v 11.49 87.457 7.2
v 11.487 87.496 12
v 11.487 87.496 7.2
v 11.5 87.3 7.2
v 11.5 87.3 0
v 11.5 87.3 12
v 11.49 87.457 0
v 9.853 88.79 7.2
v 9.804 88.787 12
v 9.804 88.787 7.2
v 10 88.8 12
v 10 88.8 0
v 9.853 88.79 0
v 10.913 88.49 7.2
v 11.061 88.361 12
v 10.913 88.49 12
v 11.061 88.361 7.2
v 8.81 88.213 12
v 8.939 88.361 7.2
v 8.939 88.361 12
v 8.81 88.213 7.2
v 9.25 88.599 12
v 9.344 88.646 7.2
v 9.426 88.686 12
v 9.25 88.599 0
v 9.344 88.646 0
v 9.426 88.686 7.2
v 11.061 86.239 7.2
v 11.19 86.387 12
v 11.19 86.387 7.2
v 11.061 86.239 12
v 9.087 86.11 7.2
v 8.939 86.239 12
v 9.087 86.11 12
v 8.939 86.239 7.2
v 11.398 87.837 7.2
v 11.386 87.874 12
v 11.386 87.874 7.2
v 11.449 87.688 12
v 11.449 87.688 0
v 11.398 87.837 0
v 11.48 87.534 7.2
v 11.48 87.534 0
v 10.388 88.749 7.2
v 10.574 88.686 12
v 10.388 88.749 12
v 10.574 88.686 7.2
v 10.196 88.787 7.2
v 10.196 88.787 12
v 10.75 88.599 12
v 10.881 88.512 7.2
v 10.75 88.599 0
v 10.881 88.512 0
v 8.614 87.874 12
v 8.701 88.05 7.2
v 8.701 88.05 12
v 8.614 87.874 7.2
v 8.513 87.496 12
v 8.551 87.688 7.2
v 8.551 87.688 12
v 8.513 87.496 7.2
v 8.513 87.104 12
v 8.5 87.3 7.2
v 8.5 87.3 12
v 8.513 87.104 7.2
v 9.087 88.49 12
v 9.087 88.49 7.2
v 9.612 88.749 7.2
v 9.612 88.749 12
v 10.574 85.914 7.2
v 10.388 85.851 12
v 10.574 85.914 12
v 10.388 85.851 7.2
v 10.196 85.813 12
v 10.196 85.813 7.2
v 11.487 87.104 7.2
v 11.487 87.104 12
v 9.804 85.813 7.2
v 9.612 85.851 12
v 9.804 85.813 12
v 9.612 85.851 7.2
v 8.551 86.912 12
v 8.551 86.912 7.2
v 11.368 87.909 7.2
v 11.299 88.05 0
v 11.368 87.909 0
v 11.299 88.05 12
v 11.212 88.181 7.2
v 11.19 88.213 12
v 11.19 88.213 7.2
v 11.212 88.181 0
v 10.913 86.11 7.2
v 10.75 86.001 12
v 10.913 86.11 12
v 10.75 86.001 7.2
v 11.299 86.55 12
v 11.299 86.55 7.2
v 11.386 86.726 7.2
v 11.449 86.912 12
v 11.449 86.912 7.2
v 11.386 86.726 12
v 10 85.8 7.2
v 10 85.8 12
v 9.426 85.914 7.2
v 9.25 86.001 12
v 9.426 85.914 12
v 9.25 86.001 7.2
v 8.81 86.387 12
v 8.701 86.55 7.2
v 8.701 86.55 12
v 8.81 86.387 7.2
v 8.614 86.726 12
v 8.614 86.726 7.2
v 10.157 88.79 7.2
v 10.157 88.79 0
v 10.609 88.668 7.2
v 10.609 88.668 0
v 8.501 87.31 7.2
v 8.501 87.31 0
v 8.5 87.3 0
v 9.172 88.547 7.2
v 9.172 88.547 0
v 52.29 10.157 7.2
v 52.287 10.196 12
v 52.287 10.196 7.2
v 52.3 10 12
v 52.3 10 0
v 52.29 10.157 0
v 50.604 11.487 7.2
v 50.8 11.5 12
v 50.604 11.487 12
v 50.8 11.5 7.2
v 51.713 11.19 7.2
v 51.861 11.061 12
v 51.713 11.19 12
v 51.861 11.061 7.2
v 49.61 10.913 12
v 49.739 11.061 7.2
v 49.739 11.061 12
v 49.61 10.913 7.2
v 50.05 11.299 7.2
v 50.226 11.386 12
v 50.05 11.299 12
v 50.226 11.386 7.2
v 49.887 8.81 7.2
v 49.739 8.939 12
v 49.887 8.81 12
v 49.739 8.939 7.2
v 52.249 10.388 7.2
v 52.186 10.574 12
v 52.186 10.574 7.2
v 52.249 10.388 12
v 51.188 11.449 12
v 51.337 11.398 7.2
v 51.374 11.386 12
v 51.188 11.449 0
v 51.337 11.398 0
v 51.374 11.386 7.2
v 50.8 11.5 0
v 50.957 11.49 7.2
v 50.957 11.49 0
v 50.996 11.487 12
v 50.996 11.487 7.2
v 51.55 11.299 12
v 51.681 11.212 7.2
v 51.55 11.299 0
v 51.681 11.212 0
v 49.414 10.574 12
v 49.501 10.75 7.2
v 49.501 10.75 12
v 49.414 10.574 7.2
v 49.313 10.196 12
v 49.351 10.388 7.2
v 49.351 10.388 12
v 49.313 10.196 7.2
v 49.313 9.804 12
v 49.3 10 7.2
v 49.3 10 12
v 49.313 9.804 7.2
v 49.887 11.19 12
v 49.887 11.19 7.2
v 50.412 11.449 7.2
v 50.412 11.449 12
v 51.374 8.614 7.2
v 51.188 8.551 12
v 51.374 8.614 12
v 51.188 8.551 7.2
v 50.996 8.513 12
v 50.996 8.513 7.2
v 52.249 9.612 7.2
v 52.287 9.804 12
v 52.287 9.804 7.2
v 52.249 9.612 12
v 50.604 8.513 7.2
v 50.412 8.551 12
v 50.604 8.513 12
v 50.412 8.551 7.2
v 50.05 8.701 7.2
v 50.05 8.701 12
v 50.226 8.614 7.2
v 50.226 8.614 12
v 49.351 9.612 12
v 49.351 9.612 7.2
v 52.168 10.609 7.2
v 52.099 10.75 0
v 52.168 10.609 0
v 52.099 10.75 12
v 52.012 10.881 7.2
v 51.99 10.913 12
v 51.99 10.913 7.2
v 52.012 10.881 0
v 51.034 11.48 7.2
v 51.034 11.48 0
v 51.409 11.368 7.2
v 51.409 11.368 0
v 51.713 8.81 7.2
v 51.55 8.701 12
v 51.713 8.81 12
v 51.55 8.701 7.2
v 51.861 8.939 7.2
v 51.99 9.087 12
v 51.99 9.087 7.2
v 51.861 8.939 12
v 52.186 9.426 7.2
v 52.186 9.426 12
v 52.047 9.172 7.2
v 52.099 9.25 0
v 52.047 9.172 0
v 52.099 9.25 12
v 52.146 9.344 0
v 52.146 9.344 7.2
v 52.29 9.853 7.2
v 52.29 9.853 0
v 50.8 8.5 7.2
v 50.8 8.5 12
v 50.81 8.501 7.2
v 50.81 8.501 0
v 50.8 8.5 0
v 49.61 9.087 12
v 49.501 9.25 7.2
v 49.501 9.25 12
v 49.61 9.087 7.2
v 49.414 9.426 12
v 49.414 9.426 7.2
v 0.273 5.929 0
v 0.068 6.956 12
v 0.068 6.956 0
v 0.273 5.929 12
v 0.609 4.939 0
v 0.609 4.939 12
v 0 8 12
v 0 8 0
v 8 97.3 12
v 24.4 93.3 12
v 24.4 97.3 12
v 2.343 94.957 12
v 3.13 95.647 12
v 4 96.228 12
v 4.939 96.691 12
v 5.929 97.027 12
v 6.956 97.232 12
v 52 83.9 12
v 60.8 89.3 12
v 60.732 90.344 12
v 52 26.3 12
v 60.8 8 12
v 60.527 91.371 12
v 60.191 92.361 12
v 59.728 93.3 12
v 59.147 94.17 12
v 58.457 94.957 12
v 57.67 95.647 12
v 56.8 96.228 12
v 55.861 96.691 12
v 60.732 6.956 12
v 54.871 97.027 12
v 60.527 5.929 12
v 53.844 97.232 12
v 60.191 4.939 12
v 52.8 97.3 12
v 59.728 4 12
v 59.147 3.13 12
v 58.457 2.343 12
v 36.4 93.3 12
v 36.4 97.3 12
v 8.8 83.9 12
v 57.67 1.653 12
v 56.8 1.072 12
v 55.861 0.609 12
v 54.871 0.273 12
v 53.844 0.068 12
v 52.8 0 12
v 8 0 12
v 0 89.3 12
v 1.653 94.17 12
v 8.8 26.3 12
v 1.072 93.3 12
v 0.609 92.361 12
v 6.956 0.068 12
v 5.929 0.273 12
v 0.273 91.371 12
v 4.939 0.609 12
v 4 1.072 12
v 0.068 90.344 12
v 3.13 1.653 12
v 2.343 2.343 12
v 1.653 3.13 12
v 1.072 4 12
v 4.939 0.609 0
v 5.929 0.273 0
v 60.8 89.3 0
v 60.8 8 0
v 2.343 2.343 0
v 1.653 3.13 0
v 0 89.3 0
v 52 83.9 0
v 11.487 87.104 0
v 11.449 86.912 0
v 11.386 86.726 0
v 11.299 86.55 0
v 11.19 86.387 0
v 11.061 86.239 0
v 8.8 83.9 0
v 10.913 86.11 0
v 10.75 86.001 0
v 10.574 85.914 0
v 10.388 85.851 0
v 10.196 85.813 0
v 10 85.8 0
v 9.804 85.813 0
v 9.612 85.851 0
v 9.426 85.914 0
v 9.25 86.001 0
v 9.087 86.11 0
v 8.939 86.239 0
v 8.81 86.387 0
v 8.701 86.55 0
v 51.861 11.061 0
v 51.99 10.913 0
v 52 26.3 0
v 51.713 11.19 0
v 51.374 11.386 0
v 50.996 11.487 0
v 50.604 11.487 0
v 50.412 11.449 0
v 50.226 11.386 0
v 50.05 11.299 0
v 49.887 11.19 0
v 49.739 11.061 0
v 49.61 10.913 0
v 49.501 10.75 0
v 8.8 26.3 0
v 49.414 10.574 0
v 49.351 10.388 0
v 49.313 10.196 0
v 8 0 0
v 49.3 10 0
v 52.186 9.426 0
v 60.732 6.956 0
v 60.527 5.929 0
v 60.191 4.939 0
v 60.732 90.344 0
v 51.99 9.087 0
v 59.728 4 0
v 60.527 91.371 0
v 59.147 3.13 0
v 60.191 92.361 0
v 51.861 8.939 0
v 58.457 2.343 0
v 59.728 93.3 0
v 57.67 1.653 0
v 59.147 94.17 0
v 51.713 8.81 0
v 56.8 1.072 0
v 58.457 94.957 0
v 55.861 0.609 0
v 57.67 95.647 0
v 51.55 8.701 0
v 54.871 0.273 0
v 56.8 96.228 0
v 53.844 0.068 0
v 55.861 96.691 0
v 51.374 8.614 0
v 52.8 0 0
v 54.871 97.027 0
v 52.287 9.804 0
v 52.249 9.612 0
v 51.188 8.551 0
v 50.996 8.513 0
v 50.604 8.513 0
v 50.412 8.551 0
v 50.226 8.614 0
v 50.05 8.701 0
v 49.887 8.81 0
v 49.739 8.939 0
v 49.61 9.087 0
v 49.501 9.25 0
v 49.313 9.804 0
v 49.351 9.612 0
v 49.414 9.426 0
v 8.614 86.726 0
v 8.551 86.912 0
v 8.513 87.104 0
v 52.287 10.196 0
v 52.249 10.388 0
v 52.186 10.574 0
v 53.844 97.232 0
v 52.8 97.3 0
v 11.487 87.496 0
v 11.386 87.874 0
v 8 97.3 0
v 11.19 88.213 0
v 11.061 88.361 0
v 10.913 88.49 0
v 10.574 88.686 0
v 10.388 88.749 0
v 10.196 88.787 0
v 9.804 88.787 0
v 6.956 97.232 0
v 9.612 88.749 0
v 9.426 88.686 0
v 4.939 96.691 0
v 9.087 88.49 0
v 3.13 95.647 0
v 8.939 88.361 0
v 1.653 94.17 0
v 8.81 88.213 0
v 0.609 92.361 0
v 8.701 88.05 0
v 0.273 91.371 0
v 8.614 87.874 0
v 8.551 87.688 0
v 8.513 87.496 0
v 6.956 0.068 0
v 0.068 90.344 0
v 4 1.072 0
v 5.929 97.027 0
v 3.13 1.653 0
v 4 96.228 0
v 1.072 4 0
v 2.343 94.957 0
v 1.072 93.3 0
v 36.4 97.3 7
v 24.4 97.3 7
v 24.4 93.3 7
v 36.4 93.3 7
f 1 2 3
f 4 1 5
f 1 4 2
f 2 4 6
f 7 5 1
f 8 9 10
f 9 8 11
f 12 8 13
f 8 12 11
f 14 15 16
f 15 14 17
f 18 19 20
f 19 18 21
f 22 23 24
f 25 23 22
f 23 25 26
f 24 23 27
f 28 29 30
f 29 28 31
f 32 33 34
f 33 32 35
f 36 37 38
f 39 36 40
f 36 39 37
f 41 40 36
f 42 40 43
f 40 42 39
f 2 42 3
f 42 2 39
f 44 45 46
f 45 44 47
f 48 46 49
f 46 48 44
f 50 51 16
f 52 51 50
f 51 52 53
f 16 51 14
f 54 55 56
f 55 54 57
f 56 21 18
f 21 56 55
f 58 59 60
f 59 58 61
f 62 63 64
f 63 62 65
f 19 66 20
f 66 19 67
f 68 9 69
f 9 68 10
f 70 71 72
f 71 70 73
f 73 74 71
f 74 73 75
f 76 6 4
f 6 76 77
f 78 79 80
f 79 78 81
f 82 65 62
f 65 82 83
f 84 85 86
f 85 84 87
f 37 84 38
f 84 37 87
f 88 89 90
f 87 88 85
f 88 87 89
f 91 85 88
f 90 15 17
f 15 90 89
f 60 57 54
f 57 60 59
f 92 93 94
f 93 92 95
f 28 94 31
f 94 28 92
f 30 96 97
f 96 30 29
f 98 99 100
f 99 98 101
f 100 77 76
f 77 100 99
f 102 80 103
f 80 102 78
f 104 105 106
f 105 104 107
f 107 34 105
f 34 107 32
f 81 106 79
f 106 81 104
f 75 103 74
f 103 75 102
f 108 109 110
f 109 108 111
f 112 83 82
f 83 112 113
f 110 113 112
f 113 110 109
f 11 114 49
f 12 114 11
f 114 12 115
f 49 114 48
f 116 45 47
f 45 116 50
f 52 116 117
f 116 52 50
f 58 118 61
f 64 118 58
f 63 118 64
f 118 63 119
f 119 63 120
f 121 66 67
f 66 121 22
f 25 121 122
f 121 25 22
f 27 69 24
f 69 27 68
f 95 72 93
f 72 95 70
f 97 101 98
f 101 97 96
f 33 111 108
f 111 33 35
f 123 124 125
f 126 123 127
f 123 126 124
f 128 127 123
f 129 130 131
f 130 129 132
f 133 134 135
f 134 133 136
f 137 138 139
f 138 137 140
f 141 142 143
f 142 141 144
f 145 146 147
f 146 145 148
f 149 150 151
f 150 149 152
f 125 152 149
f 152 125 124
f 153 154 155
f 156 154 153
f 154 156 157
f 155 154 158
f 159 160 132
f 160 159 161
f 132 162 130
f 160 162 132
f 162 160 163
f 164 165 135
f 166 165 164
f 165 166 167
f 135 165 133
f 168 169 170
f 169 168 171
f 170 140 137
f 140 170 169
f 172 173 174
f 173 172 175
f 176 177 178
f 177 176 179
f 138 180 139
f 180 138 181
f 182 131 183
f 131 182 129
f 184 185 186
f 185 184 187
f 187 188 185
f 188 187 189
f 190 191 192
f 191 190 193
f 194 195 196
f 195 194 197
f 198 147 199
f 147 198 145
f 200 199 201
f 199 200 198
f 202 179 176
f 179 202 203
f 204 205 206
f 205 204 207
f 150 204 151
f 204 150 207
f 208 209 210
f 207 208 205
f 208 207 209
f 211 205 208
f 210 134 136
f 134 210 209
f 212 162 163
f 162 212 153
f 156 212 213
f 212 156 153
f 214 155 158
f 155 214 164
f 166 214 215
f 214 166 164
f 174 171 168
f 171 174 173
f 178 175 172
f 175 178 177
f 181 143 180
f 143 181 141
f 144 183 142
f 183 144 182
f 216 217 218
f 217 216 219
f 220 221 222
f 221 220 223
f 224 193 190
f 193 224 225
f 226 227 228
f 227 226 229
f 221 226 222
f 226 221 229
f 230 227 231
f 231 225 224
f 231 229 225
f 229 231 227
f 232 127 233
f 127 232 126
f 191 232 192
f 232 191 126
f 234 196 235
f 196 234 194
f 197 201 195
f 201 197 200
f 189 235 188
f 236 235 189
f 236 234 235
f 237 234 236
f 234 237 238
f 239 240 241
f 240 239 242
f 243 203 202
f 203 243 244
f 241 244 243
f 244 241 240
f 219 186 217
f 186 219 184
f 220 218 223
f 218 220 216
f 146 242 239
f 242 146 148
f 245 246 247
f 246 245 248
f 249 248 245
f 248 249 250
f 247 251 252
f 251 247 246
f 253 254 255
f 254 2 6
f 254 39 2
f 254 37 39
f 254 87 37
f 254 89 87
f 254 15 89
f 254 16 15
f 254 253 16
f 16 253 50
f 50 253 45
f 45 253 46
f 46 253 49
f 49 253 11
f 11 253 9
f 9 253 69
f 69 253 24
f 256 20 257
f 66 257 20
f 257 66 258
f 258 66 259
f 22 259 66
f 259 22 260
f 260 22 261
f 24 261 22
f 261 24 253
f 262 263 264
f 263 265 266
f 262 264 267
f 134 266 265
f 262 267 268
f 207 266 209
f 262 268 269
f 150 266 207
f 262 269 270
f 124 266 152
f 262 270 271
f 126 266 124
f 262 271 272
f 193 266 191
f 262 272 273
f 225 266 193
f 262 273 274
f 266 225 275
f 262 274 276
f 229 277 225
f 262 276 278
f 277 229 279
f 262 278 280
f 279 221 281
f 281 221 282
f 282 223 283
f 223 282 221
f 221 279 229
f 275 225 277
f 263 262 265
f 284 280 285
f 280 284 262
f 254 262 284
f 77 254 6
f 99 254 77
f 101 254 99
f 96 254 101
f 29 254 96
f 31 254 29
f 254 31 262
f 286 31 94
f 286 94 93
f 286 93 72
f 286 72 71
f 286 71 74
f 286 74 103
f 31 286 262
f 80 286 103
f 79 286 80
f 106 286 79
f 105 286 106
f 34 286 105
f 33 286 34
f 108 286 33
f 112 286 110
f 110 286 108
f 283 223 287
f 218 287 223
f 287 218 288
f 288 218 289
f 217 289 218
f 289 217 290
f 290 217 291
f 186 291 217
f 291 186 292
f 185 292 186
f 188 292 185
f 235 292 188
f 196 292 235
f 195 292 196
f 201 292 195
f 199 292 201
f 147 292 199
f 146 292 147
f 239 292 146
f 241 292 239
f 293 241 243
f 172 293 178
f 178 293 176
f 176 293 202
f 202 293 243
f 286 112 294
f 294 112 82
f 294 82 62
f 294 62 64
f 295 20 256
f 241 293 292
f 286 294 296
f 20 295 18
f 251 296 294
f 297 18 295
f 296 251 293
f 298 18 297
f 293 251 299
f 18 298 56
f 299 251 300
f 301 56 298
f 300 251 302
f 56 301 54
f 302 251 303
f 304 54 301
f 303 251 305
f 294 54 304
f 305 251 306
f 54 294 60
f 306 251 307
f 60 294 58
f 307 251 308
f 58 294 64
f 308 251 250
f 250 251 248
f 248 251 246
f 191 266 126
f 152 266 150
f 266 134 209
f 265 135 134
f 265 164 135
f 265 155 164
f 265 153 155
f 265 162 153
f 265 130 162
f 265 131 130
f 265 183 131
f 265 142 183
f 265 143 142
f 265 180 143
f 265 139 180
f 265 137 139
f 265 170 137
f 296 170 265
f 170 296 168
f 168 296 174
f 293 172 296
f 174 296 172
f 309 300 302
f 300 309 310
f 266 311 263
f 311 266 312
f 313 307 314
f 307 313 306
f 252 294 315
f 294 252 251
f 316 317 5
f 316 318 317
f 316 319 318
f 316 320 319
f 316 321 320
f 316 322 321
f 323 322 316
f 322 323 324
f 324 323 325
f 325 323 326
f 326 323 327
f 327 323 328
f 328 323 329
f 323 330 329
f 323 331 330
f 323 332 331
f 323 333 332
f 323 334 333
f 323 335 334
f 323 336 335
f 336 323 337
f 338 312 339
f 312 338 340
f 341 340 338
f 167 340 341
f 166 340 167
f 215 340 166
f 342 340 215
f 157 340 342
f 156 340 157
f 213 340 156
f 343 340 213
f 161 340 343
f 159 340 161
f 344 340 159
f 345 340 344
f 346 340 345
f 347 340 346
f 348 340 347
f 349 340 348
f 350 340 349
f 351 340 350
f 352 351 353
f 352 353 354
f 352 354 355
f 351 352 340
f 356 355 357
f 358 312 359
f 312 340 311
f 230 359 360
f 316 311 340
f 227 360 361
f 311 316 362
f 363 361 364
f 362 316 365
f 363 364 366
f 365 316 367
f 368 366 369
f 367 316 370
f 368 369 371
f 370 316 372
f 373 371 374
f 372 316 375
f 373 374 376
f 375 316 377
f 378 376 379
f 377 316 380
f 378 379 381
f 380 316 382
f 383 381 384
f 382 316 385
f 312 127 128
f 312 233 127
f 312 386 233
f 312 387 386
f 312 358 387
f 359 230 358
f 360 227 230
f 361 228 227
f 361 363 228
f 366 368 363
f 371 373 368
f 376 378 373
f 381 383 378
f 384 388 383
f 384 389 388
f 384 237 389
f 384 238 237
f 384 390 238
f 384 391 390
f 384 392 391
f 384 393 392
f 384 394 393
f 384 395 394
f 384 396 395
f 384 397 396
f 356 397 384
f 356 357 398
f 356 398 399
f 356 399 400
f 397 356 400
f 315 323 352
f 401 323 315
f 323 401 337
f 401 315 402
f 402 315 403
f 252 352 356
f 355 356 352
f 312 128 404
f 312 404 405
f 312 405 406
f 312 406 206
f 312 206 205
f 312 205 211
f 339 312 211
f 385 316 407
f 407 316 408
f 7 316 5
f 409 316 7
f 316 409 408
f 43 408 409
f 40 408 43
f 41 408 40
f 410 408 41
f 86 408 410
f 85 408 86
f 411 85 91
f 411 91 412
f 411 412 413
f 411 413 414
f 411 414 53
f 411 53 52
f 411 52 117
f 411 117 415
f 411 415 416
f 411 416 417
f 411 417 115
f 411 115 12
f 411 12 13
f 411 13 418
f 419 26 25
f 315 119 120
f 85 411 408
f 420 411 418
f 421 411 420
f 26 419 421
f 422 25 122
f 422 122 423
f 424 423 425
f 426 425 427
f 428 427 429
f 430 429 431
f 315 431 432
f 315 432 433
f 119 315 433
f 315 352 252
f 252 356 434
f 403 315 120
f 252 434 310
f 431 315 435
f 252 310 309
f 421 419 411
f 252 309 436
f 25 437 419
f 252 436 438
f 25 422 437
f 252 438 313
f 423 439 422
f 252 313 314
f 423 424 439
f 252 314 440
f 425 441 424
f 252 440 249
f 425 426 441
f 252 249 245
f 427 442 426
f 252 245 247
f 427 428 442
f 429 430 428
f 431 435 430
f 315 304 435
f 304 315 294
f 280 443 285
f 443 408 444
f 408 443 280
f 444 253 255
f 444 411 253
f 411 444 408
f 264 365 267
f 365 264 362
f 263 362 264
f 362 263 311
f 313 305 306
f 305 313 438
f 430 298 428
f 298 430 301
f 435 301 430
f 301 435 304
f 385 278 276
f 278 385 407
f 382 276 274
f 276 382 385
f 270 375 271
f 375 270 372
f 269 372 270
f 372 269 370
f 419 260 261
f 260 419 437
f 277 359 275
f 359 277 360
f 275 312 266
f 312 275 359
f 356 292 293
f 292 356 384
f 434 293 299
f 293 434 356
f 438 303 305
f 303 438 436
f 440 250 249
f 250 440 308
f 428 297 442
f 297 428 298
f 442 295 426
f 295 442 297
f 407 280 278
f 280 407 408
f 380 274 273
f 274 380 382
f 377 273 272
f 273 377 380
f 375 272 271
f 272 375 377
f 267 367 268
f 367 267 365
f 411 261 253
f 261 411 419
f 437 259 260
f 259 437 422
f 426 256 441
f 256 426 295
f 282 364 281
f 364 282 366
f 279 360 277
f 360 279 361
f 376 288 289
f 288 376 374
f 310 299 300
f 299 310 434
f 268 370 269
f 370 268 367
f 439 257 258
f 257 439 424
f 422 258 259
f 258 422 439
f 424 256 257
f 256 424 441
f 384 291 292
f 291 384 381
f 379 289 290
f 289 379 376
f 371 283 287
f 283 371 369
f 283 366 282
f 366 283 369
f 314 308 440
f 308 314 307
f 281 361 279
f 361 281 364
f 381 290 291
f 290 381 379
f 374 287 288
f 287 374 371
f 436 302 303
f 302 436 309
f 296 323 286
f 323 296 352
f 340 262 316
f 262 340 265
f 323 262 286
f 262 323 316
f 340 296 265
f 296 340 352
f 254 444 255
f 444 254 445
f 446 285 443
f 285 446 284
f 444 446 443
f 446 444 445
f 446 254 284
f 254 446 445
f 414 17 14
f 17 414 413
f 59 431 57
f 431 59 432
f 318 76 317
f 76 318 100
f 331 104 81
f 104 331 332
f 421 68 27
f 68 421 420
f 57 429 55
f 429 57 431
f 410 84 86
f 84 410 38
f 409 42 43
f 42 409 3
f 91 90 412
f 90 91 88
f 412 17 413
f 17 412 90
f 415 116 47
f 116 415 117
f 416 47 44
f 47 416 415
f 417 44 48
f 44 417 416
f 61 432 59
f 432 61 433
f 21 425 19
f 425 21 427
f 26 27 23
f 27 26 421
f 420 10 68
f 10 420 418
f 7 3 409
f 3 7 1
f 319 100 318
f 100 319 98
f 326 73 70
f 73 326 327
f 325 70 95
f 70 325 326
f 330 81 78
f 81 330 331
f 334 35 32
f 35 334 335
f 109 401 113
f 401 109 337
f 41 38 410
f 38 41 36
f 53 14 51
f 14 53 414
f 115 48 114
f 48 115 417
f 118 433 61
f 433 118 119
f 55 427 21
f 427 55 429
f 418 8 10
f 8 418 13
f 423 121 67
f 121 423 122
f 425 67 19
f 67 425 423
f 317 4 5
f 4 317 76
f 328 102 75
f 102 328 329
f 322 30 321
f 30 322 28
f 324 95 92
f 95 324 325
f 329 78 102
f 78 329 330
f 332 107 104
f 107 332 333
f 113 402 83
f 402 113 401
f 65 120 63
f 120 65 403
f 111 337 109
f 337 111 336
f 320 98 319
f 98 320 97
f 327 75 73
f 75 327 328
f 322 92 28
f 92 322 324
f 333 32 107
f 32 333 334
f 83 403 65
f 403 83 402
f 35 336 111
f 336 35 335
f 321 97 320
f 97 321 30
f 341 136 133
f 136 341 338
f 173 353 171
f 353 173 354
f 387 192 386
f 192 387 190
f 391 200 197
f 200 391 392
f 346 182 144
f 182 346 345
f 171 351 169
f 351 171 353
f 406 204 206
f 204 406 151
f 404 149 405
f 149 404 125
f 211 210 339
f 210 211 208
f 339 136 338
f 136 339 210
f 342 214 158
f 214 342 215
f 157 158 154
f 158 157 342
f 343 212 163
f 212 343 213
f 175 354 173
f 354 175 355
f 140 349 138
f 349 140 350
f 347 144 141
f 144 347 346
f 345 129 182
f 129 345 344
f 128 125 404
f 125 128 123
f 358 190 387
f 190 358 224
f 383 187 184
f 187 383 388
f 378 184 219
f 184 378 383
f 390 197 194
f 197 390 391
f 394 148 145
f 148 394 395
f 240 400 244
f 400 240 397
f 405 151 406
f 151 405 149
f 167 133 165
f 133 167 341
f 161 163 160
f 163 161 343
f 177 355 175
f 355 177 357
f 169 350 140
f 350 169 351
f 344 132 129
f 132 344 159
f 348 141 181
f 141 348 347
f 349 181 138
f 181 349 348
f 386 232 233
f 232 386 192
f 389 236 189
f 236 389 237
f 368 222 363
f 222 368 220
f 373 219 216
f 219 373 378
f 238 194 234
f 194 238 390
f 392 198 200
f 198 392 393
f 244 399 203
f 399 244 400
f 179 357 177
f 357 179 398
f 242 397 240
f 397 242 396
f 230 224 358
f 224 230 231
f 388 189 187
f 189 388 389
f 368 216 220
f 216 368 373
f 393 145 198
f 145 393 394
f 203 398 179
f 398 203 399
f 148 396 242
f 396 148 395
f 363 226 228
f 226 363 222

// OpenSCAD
// Parametric reconstruction of images/xtouch Battery Case Front.stl,
// rotated to portrait AND resized to the actual StageLink CYD board and
// display (see StageLink/case/stagelink_case.scad) instead of the
// reference part's own dimensions.
//
// Same caveat as xtouch_reference_back.scad: rebuilt from scratch by
// measuring the original STL mesh, not an automatic conversion - STLs
// carry no dimensions or feature history. The overall design language
// (screen cutout, corner bosses, edge slot, raised rib detail) is kept
// from the reference; the envelope/cutout are now sized to the real
// board/display instead of the reference's own 101.3 x 54.5mm frame.
//
// ---------------- real board/display dims (from stagelink_case.scad) ---
board_w = 50.0;
board_h = 86.5;
disp_w = 43.2;
disp_h = 57.6;
disp_off_top = 8.0;    // display active area offset from board top edge
wall = 2.4;             // frame margin around the board (matches stagelink_case.scad)

// ---------------- derived envelope (board + margin, same formula as
// stagelink_case.scad's inner_w/inner_h -> body_w/body_h) ----------------
port_w = board_w + 6 + 2*wall;   // 60.8
port_h = board_h + 6 + 2*wall;   // 97.3

frame_t = 12.0;          // overall thickness (kept from the reference)
corner_r = 8.0;           // outer corner radius

cutout_w = disp_w;
cutout_h = disp_h;
// board is centered in the frame (margins work out symmetric - see
// echo below); cutout is centered in X, offset in Y so its top edge sits
// disp_off_top below the board's (centered) top edge.
margin_y = (port_h - board_h)/2;
board_top_y = port_h - margin_y;
cutout_top_y = board_top_y - disp_off_top;
cutout_center_y = cutout_top_y - disp_h/2;
cutout_dx = 0;
cutout_dy = cutout_center_y - port_h/2;

boss_od = 6.0;
boss_id = 3.0;
boss_inset = 10.0;

edge_slot_w = 12.0;
edge_slot_h = 4.0;

rail_count = 3;
rail_w = 3.0;
rail_gap = 4.0;
rail_h = 4.0;

$fn = 48;

echo("FRONT (real board size): port_w =", port_w, " port_h =", port_h,
     " board margin x/y =", (port_w - board_w)/2, (port_h - board_h)/2);

module rrect(w, h, r) {
  hull() {
    for (p = [[r, r], [w - r, r], [r, h - r], [w - r, h - r]])
      translate(p) circle(r = r);
  }
}

module bezel_front() {
  cx = port_w/2 + cutout_dx;
  cy = port_h/2 + cutout_dy;

  difference() {
    linear_extrude(height = frame_t)
      rrect(port_w, port_h, corner_r);

    // screen cutout, straight through
    translate([cx - cutout_w/2, cy - cutout_h/2, -1])
      cube([cutout_w, cutout_h, frame_t + 2]);

    // top-edge slot (speaker/cable), centered on the width
    translate([port_w/2 - edge_slot_w/2, port_h - 4, frame_t - edge_slot_h - 1])
      cube([edge_slot_w, 6, edge_slot_h + 2]);

    // boss pilot holes (diagonal corners)
    for (p = [[boss_inset, port_h - boss_inset], [port_w - boss_inset, boss_inset]])
      translate([p[0], p[1], -1])
        cylinder(d = boss_id, h = frame_t + 2);
  }

  // raised bosses around the pilot holes, on the interior floor
  for (p = [[boss_inset, port_h - boss_inset], [port_w - boss_inset, boss_inset]])
    translate([p[0], p[1], 0])
      difference() {
        cylinder(d = boss_od, h = frame_t * 0.6);
        translate([0, 0, -1]) cylinder(d = boss_id, h = frame_t * 0.6 + 2);
      }

  // raised rib detail, bottom margin (between the frame's bottom wall and
  // the screen cutout) - horizontal ribs, spanning the width
  rail_y0 = corner_r * 0.6;
  for (i = [0:rail_count - 1])
    translate([6, rail_y0 + i*(rail_w + rail_gap), 0])
      cube([port_w - 12, rail_w, rail_h]);
}

bezel_front();
